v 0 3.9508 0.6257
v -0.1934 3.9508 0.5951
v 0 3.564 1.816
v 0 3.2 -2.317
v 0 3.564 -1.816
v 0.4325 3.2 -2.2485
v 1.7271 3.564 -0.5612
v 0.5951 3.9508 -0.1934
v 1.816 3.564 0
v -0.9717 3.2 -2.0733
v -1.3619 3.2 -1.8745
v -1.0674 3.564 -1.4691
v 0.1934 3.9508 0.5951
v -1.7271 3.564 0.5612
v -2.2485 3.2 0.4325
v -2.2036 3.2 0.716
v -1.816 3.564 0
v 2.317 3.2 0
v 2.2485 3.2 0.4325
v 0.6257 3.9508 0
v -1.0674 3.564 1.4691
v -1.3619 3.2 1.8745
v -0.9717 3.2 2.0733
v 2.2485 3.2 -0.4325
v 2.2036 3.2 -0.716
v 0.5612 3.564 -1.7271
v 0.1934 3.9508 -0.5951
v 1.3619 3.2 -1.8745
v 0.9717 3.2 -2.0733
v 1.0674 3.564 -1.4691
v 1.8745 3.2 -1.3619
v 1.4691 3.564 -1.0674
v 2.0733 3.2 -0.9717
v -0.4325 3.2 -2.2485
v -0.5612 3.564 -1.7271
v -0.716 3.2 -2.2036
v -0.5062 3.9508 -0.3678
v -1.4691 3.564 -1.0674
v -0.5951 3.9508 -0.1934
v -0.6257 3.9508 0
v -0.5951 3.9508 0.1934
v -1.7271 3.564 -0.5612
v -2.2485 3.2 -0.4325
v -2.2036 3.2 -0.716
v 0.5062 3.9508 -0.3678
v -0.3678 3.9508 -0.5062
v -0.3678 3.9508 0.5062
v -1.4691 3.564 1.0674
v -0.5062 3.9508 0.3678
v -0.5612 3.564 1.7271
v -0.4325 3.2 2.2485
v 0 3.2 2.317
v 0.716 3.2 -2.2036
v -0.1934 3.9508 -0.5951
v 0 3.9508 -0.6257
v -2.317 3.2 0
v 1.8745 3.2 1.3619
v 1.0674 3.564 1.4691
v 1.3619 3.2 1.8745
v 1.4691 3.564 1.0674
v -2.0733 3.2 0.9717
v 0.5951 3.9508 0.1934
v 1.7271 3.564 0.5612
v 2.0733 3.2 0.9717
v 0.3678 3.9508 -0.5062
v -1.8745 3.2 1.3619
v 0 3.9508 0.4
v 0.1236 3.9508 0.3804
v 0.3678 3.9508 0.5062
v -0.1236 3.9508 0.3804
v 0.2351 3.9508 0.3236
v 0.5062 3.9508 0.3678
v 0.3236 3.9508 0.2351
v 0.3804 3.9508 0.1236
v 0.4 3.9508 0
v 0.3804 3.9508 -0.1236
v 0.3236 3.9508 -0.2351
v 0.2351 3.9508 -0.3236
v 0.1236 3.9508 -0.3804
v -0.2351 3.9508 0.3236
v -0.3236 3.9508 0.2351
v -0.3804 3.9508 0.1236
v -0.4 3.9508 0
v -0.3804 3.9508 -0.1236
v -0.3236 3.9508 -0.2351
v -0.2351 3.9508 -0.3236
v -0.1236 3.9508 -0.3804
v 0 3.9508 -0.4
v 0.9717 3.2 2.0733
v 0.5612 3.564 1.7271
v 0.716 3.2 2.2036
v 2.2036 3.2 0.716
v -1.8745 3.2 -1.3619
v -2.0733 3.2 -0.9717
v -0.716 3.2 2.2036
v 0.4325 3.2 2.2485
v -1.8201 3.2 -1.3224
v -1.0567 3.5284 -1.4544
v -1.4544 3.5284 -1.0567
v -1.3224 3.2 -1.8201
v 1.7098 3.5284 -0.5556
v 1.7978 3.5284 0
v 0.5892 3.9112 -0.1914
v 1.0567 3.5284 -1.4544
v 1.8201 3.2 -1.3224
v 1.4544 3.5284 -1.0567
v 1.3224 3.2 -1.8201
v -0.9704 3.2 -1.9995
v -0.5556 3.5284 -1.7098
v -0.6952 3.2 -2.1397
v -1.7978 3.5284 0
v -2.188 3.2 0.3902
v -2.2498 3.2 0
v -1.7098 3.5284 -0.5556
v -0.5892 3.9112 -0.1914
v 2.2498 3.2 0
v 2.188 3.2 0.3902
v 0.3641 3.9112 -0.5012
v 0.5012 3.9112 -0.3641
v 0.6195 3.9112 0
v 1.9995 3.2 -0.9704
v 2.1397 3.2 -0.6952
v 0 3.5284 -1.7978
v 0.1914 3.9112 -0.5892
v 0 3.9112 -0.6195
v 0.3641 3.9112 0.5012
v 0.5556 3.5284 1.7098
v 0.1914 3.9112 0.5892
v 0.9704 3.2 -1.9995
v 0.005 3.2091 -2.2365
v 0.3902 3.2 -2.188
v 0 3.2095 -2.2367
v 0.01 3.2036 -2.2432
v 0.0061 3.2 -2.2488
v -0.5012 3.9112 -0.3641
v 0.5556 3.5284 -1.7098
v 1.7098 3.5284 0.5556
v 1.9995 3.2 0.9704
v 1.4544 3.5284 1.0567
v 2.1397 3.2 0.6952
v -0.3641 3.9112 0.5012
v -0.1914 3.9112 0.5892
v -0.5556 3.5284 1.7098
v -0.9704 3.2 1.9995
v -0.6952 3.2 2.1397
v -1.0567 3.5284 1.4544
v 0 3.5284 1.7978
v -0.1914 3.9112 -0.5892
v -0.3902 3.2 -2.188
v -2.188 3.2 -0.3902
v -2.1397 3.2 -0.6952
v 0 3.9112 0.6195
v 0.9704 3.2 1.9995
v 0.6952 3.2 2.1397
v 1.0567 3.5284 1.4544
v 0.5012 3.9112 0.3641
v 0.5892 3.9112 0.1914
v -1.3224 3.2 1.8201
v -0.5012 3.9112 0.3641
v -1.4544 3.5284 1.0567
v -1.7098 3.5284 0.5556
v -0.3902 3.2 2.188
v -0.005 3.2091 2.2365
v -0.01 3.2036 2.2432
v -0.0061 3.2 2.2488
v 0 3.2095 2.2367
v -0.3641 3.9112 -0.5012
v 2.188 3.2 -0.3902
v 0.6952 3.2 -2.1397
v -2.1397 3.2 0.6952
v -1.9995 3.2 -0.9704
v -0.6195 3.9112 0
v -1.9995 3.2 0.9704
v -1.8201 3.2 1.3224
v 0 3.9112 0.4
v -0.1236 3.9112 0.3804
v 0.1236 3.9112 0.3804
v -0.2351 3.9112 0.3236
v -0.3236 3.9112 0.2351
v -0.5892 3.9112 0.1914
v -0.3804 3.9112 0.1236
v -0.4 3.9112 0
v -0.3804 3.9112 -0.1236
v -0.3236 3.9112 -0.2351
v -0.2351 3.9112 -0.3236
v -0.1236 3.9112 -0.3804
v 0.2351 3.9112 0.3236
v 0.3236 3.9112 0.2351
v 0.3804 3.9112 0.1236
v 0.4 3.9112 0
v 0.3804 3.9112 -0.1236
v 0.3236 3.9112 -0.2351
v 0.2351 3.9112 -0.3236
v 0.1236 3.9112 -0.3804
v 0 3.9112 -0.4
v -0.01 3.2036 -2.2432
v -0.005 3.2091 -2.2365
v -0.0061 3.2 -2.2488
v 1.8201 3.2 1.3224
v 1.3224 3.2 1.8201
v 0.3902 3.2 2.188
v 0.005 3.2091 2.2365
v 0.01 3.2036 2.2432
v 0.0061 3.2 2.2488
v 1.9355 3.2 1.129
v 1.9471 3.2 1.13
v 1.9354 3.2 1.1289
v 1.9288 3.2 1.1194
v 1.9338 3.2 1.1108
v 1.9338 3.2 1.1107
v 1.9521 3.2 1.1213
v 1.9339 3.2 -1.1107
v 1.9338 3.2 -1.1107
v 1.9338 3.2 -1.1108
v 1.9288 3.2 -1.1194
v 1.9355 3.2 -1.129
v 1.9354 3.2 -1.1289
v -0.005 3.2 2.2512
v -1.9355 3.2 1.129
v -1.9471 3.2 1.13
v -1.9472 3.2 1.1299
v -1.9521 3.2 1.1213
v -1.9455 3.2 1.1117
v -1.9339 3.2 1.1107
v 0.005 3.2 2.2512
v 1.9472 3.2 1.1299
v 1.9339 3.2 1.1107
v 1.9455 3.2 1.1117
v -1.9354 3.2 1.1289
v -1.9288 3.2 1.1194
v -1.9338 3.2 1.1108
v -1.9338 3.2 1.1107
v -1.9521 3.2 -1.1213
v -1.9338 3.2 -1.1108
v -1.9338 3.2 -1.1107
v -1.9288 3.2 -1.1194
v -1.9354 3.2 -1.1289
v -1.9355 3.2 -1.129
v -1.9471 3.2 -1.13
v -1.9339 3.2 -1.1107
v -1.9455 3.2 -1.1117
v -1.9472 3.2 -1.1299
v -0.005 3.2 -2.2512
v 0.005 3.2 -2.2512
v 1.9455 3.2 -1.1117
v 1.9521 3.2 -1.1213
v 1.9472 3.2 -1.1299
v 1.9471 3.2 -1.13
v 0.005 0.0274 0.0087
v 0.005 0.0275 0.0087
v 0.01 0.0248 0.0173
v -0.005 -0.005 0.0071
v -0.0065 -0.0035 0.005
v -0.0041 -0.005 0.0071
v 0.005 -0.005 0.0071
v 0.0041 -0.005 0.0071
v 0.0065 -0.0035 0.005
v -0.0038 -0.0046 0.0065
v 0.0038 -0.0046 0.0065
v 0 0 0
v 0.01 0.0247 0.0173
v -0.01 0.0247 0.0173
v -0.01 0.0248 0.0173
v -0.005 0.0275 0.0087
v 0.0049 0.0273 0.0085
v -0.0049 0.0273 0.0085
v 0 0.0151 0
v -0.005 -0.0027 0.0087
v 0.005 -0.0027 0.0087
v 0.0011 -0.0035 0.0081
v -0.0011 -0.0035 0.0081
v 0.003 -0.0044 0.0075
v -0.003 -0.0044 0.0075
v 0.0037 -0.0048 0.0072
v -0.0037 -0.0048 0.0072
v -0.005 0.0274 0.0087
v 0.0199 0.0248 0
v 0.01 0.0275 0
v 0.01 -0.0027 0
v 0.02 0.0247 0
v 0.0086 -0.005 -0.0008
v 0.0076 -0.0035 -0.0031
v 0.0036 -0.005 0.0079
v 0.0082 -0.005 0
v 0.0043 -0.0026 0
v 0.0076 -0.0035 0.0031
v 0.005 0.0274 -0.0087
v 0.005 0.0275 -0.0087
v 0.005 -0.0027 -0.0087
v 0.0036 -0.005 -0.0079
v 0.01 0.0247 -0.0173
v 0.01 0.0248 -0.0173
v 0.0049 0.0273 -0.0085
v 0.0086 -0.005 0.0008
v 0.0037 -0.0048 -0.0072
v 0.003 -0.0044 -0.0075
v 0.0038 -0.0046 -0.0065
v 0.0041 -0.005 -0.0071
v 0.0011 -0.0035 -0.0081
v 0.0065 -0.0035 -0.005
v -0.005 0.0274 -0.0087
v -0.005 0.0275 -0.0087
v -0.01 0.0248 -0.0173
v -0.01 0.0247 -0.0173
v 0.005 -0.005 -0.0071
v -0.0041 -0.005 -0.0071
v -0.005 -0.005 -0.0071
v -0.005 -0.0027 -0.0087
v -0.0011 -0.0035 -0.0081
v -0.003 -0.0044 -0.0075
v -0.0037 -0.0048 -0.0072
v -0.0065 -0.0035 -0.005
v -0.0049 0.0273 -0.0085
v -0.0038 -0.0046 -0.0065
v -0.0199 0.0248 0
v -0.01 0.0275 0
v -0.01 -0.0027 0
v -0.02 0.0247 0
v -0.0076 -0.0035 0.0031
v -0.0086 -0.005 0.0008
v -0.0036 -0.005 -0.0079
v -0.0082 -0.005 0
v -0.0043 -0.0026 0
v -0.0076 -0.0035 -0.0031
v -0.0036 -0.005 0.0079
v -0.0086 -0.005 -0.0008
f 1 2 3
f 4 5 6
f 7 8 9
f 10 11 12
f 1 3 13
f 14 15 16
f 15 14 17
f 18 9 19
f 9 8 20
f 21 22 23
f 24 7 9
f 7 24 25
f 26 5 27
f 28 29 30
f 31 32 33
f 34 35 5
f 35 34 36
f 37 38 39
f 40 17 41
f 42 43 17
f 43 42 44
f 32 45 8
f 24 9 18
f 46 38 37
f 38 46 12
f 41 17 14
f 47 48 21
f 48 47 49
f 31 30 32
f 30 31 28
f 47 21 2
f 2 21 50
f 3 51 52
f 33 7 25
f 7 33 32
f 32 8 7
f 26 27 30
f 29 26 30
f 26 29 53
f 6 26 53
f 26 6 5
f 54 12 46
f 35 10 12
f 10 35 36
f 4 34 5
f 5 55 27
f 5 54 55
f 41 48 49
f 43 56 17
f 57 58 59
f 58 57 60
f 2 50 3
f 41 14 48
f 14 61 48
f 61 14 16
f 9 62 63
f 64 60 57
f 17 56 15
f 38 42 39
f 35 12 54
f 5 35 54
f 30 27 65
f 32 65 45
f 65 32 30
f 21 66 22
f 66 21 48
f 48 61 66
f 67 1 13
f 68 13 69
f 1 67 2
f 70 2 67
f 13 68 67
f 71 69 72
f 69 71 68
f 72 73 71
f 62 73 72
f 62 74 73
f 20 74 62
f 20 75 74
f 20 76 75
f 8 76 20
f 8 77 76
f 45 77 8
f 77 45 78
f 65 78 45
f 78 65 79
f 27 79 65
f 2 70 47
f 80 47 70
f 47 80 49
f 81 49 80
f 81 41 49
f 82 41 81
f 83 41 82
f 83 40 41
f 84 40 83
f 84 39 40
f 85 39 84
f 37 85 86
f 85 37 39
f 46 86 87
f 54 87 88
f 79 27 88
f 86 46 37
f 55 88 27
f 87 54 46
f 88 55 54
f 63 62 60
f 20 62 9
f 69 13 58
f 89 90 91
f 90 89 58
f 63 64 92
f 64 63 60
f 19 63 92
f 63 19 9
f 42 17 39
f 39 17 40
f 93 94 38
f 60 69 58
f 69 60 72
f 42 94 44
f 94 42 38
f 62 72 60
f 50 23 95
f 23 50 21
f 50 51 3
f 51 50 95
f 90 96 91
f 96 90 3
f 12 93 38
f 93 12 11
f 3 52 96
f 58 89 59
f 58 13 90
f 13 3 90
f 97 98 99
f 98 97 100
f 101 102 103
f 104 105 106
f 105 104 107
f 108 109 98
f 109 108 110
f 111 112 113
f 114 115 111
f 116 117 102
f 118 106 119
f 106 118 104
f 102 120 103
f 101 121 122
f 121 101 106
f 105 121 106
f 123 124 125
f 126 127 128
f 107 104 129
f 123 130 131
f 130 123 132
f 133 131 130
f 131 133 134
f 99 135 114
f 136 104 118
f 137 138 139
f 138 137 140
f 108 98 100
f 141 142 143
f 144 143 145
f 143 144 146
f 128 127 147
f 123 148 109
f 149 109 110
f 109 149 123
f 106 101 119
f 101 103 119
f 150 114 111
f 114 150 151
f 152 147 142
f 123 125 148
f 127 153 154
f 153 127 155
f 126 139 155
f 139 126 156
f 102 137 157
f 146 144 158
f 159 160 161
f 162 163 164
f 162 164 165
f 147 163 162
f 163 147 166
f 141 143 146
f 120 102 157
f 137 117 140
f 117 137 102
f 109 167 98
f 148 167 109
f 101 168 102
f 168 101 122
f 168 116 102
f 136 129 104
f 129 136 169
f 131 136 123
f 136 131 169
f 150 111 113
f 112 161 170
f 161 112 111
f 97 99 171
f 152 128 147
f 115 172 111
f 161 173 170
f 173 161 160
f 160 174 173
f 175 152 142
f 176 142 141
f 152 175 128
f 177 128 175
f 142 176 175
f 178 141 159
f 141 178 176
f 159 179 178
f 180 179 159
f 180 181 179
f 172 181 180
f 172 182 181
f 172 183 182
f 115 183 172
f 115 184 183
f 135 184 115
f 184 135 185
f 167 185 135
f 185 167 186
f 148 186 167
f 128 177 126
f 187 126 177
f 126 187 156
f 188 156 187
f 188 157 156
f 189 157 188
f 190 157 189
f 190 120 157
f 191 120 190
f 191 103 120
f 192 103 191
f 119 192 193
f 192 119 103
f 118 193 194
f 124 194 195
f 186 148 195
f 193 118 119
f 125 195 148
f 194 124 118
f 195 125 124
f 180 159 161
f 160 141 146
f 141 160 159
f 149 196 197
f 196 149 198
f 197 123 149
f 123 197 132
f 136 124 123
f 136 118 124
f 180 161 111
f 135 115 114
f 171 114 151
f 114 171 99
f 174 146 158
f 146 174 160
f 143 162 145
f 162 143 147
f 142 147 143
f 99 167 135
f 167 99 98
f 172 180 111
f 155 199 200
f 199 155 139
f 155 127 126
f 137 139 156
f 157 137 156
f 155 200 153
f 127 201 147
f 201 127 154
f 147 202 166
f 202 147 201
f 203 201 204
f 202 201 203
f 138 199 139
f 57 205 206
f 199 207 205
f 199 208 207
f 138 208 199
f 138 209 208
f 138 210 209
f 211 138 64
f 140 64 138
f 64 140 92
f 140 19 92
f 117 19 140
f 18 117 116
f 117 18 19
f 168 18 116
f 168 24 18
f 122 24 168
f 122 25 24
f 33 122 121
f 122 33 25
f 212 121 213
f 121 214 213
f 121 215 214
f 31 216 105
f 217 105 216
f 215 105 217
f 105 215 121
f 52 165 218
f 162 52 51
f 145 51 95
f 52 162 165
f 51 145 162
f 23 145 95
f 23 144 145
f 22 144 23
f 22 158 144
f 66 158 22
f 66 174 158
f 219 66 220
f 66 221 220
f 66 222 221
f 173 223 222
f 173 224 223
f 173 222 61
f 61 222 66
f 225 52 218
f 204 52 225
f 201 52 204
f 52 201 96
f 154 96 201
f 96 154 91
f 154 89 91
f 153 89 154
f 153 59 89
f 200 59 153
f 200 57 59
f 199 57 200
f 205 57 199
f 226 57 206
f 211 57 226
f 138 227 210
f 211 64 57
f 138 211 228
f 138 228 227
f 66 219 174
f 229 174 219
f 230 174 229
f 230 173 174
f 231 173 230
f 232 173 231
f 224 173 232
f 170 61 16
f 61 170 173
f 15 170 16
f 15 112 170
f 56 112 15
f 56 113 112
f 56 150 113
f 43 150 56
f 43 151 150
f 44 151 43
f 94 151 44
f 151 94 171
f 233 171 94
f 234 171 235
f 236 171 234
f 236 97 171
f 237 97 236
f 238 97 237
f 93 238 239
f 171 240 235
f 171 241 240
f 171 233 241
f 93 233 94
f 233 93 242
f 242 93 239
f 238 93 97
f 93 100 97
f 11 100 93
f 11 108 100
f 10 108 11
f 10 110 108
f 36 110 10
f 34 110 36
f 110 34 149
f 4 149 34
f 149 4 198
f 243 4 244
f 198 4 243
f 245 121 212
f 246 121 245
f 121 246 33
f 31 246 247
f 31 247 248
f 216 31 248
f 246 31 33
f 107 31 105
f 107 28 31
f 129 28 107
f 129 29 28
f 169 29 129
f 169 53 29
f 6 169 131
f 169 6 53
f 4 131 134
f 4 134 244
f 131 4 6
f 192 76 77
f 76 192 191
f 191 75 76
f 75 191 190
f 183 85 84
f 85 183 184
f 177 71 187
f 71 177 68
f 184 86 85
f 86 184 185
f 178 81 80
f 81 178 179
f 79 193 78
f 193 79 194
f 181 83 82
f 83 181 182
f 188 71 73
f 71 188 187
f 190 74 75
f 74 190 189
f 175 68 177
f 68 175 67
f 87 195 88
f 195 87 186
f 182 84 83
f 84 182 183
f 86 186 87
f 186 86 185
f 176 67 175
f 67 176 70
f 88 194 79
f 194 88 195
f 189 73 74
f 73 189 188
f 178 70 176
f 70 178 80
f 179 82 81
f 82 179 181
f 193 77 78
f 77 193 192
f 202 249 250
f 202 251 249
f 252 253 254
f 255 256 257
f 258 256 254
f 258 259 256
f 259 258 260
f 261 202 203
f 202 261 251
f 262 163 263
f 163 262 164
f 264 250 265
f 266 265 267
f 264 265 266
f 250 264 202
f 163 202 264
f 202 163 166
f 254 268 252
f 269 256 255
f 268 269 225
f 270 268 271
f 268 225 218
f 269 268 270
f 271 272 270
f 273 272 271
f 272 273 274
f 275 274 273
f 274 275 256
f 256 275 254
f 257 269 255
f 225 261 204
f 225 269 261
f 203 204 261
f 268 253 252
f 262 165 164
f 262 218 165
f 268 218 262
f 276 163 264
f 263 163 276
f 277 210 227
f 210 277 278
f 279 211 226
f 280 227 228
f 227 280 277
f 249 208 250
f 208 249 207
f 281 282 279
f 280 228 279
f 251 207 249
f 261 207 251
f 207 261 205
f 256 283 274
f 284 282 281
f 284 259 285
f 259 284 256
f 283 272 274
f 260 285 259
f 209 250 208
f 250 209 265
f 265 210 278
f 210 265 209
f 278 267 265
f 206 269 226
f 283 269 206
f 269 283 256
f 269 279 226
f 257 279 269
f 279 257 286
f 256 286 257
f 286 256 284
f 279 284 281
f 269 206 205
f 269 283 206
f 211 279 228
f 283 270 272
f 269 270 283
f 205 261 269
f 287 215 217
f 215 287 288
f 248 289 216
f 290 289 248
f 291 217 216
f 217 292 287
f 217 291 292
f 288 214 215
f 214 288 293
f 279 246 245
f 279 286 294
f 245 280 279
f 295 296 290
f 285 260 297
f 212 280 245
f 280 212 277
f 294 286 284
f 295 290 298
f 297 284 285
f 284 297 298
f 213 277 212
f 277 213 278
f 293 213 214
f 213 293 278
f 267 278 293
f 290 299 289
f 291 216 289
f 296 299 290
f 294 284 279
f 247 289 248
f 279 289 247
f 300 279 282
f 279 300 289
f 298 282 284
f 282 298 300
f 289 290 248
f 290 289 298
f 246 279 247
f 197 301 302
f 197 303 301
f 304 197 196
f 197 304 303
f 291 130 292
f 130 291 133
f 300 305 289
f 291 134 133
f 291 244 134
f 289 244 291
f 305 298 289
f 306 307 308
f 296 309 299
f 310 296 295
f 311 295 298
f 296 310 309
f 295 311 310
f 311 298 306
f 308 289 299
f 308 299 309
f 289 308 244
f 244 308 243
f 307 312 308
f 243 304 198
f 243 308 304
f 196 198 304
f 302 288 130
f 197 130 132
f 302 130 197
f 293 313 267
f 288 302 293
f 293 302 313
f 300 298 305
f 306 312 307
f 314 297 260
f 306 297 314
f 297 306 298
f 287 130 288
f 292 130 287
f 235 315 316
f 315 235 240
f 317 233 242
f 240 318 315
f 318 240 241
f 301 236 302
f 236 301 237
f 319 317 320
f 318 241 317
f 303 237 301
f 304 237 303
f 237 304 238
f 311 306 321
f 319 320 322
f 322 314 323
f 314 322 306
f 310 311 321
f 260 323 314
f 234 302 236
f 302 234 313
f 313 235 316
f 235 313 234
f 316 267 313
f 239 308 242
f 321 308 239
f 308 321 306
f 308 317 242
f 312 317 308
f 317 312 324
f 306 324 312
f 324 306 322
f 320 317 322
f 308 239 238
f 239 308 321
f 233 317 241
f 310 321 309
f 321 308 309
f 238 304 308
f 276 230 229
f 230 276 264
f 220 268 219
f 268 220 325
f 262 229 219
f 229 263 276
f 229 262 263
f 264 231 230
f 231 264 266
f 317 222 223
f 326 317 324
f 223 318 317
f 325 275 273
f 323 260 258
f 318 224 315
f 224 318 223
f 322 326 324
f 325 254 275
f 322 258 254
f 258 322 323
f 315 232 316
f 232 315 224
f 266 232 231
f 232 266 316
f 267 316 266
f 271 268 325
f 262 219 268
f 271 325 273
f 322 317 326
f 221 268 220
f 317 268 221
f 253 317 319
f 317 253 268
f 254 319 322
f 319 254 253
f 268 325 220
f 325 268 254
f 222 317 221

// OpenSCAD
$fn = 20;
num_of_cords = 6;

// Main geometry
rotate([-90, 0, 0]) union() {
    canopy();
    for (i = [0 : 1 : num_of_cords-1])
        rotate([35.0, 0.0, 360 * i / num_of_cords]) cord();
}

module canopy() {
    difference() {
        sphere(4.0);
        sphere(3.96);
        translate([0.0, 0.0, -0.8]) cube(8.0, center=true);
        cylinder(d=0.8, h=4.0);
    }
}

module cord() {
    $fn = 6;
    cylinder(d=0.02, h=1.965*2);
}
